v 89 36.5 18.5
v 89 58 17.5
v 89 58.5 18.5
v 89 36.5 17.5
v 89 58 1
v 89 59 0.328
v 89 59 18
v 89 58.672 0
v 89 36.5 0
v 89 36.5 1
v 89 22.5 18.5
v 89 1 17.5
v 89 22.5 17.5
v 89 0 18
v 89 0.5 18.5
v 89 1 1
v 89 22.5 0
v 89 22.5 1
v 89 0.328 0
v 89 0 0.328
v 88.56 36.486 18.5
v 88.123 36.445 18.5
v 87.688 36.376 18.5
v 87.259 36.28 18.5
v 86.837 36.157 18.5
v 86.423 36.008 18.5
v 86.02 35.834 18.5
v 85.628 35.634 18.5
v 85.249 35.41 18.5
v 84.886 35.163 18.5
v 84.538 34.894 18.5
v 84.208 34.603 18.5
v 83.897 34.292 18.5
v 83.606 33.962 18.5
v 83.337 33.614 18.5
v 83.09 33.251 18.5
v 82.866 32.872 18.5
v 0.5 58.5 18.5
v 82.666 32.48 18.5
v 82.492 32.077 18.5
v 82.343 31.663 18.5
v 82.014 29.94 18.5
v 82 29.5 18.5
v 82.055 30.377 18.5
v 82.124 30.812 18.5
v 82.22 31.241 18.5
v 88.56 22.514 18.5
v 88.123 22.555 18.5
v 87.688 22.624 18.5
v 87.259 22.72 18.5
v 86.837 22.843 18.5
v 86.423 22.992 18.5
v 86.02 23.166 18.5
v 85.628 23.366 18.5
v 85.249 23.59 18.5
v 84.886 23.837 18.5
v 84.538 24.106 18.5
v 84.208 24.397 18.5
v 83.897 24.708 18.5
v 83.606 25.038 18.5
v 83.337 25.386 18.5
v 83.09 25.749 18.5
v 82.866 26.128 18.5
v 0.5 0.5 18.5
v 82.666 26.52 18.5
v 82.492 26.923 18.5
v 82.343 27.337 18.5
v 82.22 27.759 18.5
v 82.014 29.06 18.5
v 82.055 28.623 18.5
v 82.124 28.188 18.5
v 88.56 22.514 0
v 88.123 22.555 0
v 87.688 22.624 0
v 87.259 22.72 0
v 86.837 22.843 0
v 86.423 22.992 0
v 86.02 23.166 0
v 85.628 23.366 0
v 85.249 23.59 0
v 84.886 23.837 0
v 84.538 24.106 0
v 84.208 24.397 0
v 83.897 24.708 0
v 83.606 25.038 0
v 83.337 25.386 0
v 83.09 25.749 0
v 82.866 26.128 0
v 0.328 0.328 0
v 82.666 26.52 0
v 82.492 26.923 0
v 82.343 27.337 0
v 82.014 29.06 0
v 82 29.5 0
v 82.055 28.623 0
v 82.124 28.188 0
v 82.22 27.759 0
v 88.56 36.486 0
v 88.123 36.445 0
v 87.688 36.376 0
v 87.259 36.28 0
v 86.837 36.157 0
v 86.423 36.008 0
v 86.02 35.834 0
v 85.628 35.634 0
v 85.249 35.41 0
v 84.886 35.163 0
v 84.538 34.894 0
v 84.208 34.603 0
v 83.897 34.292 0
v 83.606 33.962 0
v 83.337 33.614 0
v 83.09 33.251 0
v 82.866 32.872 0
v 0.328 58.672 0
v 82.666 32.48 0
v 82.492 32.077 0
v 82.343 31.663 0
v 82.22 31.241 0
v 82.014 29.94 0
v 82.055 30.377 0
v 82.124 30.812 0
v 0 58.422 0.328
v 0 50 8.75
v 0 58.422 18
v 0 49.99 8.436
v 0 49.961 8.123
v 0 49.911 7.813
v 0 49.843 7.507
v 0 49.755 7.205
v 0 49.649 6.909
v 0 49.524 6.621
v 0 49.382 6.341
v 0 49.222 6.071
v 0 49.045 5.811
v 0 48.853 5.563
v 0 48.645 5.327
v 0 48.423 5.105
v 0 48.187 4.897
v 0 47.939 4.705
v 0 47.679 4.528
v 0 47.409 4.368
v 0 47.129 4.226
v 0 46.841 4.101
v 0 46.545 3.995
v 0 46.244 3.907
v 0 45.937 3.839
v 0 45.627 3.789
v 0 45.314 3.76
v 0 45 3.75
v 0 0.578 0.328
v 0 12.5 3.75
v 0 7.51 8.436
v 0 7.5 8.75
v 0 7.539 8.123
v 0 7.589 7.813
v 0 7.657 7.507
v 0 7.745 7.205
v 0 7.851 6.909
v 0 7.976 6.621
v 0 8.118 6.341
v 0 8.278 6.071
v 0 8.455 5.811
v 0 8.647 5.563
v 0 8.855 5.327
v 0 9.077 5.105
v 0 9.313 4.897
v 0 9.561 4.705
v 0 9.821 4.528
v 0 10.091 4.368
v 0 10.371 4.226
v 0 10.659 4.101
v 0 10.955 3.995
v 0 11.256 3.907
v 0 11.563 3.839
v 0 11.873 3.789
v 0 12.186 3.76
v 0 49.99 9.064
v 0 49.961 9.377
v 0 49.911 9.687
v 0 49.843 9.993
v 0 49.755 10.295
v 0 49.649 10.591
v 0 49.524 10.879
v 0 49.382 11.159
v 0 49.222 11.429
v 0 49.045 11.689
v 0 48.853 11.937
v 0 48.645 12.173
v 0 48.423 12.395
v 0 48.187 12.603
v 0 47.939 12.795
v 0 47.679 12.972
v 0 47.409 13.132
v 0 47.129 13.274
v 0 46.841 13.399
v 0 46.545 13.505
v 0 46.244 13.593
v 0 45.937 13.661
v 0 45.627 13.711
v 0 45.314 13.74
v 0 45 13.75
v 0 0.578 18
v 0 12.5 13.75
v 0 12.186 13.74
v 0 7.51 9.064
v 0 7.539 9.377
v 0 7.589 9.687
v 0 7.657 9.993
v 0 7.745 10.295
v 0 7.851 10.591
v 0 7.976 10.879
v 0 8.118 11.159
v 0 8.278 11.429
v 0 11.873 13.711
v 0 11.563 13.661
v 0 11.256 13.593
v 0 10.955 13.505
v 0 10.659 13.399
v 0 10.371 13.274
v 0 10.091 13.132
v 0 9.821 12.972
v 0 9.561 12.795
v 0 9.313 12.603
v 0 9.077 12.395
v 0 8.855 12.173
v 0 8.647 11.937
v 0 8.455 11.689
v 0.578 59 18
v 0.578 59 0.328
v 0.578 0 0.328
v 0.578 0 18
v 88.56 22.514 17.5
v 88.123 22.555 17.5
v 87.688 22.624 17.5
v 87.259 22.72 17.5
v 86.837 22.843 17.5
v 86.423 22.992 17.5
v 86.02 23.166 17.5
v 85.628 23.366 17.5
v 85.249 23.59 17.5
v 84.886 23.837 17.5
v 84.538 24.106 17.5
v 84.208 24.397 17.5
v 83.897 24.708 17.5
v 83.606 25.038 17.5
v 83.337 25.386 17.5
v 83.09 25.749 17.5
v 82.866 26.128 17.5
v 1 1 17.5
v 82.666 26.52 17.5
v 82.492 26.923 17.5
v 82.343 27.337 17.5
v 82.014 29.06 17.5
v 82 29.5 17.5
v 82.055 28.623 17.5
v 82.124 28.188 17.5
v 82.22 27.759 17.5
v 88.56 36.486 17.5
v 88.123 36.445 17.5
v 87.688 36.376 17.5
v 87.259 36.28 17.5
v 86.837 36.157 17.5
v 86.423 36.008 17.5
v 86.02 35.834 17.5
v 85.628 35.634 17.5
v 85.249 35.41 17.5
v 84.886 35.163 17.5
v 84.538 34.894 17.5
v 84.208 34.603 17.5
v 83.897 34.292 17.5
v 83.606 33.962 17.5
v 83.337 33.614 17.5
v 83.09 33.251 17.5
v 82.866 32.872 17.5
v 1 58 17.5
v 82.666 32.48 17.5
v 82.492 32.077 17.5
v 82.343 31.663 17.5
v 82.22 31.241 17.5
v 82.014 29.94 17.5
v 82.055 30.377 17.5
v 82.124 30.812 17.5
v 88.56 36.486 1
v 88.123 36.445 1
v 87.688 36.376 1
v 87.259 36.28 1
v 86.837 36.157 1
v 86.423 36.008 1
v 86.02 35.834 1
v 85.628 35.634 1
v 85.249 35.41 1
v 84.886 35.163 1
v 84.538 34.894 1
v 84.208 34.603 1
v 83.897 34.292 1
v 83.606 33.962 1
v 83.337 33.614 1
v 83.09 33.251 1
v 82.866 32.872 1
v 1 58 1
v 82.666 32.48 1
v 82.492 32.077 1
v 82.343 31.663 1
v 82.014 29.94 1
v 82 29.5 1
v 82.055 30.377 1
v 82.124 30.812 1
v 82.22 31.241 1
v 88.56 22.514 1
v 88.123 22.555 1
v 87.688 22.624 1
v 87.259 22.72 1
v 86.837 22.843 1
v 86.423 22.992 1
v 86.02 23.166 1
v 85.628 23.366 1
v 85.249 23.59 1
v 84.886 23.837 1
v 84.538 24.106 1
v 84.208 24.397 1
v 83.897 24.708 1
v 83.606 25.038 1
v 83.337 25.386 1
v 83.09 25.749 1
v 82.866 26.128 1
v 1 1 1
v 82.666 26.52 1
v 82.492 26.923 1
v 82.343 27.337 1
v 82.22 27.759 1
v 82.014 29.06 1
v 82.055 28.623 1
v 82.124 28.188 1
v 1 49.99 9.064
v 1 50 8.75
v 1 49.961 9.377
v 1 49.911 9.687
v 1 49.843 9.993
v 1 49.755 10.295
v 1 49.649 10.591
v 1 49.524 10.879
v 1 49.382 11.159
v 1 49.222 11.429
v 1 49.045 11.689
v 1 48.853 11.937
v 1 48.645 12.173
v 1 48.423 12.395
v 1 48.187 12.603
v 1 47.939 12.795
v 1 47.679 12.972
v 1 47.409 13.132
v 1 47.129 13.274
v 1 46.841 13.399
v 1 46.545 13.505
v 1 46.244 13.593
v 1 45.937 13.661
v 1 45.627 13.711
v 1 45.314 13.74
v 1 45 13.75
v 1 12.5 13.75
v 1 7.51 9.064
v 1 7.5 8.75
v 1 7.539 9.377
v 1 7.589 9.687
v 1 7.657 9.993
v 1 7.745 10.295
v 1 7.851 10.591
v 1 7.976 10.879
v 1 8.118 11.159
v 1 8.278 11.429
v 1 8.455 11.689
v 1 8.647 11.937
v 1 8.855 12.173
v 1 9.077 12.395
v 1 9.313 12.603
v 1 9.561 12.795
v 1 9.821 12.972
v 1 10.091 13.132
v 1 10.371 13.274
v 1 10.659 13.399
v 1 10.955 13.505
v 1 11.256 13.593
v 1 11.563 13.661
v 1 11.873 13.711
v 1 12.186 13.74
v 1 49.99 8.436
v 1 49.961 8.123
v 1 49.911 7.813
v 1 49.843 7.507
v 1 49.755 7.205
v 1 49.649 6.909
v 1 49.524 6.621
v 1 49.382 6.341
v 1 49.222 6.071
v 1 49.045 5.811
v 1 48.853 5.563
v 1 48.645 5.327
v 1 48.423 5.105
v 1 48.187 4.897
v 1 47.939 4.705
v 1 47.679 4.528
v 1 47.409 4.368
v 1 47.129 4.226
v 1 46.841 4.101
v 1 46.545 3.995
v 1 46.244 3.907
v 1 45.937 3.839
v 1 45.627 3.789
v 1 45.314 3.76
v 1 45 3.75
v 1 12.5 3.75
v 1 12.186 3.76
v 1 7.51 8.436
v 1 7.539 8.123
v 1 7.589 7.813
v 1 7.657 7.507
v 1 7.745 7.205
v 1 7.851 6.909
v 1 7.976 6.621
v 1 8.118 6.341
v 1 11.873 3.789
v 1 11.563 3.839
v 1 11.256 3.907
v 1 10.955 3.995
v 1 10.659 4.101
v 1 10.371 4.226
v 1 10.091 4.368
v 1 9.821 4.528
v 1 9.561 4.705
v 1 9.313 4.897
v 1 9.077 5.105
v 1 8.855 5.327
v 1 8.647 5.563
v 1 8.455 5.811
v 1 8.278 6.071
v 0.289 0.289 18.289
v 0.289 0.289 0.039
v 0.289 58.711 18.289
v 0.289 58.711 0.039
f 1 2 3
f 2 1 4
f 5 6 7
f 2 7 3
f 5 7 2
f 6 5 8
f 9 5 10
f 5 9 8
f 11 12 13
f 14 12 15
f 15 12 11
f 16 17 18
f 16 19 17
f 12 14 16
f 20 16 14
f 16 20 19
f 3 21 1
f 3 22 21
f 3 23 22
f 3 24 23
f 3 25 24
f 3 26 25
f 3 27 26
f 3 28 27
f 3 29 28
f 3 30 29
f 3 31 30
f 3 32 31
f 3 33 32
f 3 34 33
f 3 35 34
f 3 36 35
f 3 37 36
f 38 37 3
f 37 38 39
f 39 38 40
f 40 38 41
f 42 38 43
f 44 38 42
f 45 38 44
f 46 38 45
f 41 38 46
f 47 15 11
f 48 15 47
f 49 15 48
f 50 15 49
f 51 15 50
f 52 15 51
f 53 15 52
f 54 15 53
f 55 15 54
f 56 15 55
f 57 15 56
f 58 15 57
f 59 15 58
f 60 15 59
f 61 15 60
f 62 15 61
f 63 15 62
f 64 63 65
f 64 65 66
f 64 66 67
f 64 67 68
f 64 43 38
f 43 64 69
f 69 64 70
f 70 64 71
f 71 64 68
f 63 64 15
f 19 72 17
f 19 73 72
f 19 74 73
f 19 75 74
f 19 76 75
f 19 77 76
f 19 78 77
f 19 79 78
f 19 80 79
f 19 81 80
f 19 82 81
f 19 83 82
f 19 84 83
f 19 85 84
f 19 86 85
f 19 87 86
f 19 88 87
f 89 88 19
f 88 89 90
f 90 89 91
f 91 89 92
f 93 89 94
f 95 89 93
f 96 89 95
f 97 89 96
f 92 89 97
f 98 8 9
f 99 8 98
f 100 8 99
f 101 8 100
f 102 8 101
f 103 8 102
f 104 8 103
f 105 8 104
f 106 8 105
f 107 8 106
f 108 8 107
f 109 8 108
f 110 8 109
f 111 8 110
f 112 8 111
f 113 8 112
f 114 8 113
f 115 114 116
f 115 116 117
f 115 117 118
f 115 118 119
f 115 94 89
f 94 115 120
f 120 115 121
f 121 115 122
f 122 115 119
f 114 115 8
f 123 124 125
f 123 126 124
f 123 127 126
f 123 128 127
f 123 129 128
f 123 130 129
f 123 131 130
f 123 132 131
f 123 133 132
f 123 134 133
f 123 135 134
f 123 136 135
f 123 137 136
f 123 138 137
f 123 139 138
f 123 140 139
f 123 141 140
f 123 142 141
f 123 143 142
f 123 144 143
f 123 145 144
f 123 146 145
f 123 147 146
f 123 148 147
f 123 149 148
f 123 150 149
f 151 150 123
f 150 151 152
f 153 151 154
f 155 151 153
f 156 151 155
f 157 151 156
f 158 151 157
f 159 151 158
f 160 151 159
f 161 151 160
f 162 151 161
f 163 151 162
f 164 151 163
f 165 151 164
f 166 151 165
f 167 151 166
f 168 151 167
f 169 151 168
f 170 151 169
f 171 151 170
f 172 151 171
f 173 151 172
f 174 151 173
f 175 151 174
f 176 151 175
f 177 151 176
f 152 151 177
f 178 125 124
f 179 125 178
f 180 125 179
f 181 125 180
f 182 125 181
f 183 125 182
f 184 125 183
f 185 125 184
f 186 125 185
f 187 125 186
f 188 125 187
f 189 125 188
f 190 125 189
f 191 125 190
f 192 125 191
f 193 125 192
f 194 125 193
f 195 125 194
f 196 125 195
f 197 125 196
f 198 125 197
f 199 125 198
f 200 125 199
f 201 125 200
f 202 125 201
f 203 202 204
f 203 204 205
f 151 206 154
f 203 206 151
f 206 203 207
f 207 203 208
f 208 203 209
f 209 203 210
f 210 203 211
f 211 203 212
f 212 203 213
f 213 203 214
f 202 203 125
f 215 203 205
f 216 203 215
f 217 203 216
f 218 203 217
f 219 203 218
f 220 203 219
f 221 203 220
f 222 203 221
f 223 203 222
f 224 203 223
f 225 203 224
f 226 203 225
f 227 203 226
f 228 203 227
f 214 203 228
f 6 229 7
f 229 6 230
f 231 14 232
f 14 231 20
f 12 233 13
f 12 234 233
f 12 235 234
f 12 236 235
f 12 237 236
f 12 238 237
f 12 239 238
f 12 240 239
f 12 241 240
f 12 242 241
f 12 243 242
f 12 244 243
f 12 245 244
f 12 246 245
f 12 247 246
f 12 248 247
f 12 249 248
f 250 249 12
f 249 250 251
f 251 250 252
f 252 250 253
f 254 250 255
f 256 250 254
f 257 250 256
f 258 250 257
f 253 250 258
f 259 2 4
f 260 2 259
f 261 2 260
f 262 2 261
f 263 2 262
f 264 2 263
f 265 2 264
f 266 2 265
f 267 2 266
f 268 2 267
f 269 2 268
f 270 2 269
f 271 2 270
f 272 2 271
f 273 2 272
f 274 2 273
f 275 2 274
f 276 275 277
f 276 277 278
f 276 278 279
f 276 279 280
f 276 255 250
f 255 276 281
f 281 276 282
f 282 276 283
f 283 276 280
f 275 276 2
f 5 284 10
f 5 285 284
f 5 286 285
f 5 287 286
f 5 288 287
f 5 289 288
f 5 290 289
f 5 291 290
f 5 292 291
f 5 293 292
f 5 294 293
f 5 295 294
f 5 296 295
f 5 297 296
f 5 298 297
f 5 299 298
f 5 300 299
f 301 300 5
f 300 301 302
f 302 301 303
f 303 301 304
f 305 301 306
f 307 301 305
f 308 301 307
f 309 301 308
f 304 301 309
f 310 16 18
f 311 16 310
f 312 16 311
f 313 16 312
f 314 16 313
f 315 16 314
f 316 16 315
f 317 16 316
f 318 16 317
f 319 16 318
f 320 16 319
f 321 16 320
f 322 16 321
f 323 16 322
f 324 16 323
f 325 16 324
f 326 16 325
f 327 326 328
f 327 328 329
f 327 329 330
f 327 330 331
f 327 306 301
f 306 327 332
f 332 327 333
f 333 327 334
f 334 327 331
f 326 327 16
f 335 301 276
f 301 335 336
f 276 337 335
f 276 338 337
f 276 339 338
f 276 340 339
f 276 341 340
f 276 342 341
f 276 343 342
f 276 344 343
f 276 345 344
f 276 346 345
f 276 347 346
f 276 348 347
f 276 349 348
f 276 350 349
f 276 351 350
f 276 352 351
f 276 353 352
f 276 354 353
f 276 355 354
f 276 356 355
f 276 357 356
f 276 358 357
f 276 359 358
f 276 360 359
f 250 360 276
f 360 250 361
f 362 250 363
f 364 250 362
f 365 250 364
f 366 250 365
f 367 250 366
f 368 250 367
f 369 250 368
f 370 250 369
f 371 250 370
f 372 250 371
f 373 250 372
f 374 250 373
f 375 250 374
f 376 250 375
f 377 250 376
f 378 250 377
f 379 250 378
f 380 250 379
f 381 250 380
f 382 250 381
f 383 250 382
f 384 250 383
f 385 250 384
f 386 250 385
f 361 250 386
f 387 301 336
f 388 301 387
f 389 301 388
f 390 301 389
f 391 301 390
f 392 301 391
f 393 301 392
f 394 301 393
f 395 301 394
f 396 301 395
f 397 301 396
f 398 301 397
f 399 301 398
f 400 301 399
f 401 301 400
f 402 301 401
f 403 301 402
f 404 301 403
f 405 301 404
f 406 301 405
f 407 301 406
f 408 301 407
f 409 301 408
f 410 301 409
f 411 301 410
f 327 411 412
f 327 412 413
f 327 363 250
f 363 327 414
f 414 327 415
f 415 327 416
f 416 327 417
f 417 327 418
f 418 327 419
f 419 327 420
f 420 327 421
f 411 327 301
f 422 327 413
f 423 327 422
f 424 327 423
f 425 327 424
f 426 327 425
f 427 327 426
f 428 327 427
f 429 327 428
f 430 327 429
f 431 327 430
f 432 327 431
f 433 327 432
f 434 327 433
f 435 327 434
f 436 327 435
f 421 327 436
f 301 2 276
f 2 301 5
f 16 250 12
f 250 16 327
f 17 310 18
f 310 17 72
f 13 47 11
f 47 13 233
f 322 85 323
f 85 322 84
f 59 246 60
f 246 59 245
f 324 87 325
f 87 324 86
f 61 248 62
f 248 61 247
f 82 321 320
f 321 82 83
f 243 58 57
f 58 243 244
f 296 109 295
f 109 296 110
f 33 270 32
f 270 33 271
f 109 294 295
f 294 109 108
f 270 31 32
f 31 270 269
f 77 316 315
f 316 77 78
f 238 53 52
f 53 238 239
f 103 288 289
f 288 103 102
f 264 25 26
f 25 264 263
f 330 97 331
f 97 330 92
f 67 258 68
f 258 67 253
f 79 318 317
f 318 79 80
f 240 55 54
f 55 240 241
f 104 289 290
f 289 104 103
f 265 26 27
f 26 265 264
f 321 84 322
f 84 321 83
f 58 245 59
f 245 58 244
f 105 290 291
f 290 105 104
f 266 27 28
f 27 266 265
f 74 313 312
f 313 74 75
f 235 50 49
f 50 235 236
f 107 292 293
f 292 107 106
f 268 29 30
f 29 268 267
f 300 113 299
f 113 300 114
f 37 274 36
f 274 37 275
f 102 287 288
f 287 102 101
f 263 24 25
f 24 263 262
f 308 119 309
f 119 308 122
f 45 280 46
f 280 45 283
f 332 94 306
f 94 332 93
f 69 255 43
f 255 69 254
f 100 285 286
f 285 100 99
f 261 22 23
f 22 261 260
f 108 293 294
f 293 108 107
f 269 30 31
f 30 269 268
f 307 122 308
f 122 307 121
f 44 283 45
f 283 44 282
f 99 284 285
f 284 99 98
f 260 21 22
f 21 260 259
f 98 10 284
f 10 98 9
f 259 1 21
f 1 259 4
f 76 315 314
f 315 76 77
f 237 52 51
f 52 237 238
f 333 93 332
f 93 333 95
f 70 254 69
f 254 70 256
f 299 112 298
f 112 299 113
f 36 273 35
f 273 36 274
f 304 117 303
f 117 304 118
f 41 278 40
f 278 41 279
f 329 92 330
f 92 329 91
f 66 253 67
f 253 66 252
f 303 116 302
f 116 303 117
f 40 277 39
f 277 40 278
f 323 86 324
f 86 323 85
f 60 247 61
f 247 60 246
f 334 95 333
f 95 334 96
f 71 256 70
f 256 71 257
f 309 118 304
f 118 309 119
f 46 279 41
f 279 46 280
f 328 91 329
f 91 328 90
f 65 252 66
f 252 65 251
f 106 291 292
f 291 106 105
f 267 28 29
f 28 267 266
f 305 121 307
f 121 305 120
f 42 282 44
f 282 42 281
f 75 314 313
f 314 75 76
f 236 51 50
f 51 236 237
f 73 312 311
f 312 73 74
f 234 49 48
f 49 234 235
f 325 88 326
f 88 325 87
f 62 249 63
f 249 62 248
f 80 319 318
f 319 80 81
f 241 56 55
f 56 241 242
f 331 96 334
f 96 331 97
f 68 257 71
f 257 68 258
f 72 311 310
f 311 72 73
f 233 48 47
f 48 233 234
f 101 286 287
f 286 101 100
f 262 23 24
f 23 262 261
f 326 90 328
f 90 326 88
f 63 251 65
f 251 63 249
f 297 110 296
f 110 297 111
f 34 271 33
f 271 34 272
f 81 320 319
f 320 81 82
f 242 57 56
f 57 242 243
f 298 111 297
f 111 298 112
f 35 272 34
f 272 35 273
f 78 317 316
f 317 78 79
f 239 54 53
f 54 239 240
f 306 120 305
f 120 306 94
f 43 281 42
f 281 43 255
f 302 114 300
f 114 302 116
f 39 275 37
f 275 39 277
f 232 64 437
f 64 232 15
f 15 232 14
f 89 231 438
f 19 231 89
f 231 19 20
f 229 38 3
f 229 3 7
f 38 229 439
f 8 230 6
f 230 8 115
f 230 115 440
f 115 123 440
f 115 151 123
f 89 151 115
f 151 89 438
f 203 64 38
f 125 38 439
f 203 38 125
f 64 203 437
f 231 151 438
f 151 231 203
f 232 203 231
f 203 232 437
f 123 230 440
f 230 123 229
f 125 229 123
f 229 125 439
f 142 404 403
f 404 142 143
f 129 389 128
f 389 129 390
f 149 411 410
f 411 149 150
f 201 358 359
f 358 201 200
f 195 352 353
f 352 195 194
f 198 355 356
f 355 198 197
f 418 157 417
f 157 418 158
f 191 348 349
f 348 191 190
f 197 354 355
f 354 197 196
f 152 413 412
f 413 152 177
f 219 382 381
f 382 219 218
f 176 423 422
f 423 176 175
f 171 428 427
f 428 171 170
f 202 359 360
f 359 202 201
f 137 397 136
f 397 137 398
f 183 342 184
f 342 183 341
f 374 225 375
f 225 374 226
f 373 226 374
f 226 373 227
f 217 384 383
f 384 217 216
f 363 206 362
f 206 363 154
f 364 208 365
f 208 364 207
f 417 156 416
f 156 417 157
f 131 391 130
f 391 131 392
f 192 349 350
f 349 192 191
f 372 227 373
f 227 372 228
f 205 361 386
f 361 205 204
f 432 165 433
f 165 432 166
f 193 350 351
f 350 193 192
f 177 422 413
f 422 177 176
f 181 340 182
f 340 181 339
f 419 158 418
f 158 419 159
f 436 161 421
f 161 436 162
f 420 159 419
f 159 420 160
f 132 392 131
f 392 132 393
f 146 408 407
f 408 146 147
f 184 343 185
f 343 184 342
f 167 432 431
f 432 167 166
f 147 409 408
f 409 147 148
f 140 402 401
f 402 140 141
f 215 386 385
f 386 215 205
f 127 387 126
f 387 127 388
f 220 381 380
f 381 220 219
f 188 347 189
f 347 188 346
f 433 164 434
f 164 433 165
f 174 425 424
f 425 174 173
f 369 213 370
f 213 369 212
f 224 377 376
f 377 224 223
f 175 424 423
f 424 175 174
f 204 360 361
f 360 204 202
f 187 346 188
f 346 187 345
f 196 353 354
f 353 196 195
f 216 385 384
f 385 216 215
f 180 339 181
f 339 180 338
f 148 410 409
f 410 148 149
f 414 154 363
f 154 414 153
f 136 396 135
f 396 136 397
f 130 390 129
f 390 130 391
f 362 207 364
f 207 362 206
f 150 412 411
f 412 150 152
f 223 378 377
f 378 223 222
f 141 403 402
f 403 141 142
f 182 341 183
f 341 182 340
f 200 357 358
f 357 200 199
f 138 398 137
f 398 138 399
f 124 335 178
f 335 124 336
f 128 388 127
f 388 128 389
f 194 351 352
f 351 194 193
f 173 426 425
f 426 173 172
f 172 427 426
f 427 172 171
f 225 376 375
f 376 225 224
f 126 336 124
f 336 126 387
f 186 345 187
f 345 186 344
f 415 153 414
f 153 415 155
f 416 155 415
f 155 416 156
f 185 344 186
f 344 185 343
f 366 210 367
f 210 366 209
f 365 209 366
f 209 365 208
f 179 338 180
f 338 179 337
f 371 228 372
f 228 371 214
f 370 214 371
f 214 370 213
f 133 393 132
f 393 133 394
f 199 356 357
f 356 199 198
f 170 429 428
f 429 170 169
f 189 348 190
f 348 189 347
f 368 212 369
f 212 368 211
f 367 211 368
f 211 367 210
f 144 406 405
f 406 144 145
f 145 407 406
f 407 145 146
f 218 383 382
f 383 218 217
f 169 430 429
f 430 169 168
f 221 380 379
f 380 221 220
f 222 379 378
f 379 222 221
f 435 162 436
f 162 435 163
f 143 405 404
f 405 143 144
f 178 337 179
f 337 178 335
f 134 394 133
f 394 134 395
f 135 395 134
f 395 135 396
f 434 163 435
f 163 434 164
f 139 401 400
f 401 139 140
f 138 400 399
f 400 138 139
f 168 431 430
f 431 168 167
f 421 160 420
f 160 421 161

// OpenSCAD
$fn=100;
difference(){
  cube([89,59,18.5]);
  translate([1,1,1]) cube([89,57,16.5]);
  translate([89,29.5,-1]) cylinder(20, r=7);
  translate([-1,-1.5,16.5]) rotate([45,0,0]) cube([91,10,2]);
  translate([-1,-2.5,0]) rotate([-45,0,0]) cube([91,10,2]);
  translate([-1,55.5,21.5]) rotate([-45,0,0]) cube([91,10,2]);
  translate([-1,55.5,-6]) rotate([45,0,0]) cube([91,10,2]);
  translate([-4.5,-1,2]) rotate([0,45,0]) cube([10,60,2]);
  translate([-4.5,-1,13.5]) rotate([0,-45,0]) cube([10,60,2]);
  translate([2.75,-5,-1]) rotate([0,0,45]) cube([2,10,20]);
  translate([-6.25,55,-1]) rotate([0,0,-45]) cube([2,10,20]);
  hull(){
    translate([-1,12.5,8.75]) rotate([0,90,0]) cylinder(5, r=5);
    translate([-1,45,8.75]) rotate([0,90,0]) cylinder(5, r=5);
  }
}
